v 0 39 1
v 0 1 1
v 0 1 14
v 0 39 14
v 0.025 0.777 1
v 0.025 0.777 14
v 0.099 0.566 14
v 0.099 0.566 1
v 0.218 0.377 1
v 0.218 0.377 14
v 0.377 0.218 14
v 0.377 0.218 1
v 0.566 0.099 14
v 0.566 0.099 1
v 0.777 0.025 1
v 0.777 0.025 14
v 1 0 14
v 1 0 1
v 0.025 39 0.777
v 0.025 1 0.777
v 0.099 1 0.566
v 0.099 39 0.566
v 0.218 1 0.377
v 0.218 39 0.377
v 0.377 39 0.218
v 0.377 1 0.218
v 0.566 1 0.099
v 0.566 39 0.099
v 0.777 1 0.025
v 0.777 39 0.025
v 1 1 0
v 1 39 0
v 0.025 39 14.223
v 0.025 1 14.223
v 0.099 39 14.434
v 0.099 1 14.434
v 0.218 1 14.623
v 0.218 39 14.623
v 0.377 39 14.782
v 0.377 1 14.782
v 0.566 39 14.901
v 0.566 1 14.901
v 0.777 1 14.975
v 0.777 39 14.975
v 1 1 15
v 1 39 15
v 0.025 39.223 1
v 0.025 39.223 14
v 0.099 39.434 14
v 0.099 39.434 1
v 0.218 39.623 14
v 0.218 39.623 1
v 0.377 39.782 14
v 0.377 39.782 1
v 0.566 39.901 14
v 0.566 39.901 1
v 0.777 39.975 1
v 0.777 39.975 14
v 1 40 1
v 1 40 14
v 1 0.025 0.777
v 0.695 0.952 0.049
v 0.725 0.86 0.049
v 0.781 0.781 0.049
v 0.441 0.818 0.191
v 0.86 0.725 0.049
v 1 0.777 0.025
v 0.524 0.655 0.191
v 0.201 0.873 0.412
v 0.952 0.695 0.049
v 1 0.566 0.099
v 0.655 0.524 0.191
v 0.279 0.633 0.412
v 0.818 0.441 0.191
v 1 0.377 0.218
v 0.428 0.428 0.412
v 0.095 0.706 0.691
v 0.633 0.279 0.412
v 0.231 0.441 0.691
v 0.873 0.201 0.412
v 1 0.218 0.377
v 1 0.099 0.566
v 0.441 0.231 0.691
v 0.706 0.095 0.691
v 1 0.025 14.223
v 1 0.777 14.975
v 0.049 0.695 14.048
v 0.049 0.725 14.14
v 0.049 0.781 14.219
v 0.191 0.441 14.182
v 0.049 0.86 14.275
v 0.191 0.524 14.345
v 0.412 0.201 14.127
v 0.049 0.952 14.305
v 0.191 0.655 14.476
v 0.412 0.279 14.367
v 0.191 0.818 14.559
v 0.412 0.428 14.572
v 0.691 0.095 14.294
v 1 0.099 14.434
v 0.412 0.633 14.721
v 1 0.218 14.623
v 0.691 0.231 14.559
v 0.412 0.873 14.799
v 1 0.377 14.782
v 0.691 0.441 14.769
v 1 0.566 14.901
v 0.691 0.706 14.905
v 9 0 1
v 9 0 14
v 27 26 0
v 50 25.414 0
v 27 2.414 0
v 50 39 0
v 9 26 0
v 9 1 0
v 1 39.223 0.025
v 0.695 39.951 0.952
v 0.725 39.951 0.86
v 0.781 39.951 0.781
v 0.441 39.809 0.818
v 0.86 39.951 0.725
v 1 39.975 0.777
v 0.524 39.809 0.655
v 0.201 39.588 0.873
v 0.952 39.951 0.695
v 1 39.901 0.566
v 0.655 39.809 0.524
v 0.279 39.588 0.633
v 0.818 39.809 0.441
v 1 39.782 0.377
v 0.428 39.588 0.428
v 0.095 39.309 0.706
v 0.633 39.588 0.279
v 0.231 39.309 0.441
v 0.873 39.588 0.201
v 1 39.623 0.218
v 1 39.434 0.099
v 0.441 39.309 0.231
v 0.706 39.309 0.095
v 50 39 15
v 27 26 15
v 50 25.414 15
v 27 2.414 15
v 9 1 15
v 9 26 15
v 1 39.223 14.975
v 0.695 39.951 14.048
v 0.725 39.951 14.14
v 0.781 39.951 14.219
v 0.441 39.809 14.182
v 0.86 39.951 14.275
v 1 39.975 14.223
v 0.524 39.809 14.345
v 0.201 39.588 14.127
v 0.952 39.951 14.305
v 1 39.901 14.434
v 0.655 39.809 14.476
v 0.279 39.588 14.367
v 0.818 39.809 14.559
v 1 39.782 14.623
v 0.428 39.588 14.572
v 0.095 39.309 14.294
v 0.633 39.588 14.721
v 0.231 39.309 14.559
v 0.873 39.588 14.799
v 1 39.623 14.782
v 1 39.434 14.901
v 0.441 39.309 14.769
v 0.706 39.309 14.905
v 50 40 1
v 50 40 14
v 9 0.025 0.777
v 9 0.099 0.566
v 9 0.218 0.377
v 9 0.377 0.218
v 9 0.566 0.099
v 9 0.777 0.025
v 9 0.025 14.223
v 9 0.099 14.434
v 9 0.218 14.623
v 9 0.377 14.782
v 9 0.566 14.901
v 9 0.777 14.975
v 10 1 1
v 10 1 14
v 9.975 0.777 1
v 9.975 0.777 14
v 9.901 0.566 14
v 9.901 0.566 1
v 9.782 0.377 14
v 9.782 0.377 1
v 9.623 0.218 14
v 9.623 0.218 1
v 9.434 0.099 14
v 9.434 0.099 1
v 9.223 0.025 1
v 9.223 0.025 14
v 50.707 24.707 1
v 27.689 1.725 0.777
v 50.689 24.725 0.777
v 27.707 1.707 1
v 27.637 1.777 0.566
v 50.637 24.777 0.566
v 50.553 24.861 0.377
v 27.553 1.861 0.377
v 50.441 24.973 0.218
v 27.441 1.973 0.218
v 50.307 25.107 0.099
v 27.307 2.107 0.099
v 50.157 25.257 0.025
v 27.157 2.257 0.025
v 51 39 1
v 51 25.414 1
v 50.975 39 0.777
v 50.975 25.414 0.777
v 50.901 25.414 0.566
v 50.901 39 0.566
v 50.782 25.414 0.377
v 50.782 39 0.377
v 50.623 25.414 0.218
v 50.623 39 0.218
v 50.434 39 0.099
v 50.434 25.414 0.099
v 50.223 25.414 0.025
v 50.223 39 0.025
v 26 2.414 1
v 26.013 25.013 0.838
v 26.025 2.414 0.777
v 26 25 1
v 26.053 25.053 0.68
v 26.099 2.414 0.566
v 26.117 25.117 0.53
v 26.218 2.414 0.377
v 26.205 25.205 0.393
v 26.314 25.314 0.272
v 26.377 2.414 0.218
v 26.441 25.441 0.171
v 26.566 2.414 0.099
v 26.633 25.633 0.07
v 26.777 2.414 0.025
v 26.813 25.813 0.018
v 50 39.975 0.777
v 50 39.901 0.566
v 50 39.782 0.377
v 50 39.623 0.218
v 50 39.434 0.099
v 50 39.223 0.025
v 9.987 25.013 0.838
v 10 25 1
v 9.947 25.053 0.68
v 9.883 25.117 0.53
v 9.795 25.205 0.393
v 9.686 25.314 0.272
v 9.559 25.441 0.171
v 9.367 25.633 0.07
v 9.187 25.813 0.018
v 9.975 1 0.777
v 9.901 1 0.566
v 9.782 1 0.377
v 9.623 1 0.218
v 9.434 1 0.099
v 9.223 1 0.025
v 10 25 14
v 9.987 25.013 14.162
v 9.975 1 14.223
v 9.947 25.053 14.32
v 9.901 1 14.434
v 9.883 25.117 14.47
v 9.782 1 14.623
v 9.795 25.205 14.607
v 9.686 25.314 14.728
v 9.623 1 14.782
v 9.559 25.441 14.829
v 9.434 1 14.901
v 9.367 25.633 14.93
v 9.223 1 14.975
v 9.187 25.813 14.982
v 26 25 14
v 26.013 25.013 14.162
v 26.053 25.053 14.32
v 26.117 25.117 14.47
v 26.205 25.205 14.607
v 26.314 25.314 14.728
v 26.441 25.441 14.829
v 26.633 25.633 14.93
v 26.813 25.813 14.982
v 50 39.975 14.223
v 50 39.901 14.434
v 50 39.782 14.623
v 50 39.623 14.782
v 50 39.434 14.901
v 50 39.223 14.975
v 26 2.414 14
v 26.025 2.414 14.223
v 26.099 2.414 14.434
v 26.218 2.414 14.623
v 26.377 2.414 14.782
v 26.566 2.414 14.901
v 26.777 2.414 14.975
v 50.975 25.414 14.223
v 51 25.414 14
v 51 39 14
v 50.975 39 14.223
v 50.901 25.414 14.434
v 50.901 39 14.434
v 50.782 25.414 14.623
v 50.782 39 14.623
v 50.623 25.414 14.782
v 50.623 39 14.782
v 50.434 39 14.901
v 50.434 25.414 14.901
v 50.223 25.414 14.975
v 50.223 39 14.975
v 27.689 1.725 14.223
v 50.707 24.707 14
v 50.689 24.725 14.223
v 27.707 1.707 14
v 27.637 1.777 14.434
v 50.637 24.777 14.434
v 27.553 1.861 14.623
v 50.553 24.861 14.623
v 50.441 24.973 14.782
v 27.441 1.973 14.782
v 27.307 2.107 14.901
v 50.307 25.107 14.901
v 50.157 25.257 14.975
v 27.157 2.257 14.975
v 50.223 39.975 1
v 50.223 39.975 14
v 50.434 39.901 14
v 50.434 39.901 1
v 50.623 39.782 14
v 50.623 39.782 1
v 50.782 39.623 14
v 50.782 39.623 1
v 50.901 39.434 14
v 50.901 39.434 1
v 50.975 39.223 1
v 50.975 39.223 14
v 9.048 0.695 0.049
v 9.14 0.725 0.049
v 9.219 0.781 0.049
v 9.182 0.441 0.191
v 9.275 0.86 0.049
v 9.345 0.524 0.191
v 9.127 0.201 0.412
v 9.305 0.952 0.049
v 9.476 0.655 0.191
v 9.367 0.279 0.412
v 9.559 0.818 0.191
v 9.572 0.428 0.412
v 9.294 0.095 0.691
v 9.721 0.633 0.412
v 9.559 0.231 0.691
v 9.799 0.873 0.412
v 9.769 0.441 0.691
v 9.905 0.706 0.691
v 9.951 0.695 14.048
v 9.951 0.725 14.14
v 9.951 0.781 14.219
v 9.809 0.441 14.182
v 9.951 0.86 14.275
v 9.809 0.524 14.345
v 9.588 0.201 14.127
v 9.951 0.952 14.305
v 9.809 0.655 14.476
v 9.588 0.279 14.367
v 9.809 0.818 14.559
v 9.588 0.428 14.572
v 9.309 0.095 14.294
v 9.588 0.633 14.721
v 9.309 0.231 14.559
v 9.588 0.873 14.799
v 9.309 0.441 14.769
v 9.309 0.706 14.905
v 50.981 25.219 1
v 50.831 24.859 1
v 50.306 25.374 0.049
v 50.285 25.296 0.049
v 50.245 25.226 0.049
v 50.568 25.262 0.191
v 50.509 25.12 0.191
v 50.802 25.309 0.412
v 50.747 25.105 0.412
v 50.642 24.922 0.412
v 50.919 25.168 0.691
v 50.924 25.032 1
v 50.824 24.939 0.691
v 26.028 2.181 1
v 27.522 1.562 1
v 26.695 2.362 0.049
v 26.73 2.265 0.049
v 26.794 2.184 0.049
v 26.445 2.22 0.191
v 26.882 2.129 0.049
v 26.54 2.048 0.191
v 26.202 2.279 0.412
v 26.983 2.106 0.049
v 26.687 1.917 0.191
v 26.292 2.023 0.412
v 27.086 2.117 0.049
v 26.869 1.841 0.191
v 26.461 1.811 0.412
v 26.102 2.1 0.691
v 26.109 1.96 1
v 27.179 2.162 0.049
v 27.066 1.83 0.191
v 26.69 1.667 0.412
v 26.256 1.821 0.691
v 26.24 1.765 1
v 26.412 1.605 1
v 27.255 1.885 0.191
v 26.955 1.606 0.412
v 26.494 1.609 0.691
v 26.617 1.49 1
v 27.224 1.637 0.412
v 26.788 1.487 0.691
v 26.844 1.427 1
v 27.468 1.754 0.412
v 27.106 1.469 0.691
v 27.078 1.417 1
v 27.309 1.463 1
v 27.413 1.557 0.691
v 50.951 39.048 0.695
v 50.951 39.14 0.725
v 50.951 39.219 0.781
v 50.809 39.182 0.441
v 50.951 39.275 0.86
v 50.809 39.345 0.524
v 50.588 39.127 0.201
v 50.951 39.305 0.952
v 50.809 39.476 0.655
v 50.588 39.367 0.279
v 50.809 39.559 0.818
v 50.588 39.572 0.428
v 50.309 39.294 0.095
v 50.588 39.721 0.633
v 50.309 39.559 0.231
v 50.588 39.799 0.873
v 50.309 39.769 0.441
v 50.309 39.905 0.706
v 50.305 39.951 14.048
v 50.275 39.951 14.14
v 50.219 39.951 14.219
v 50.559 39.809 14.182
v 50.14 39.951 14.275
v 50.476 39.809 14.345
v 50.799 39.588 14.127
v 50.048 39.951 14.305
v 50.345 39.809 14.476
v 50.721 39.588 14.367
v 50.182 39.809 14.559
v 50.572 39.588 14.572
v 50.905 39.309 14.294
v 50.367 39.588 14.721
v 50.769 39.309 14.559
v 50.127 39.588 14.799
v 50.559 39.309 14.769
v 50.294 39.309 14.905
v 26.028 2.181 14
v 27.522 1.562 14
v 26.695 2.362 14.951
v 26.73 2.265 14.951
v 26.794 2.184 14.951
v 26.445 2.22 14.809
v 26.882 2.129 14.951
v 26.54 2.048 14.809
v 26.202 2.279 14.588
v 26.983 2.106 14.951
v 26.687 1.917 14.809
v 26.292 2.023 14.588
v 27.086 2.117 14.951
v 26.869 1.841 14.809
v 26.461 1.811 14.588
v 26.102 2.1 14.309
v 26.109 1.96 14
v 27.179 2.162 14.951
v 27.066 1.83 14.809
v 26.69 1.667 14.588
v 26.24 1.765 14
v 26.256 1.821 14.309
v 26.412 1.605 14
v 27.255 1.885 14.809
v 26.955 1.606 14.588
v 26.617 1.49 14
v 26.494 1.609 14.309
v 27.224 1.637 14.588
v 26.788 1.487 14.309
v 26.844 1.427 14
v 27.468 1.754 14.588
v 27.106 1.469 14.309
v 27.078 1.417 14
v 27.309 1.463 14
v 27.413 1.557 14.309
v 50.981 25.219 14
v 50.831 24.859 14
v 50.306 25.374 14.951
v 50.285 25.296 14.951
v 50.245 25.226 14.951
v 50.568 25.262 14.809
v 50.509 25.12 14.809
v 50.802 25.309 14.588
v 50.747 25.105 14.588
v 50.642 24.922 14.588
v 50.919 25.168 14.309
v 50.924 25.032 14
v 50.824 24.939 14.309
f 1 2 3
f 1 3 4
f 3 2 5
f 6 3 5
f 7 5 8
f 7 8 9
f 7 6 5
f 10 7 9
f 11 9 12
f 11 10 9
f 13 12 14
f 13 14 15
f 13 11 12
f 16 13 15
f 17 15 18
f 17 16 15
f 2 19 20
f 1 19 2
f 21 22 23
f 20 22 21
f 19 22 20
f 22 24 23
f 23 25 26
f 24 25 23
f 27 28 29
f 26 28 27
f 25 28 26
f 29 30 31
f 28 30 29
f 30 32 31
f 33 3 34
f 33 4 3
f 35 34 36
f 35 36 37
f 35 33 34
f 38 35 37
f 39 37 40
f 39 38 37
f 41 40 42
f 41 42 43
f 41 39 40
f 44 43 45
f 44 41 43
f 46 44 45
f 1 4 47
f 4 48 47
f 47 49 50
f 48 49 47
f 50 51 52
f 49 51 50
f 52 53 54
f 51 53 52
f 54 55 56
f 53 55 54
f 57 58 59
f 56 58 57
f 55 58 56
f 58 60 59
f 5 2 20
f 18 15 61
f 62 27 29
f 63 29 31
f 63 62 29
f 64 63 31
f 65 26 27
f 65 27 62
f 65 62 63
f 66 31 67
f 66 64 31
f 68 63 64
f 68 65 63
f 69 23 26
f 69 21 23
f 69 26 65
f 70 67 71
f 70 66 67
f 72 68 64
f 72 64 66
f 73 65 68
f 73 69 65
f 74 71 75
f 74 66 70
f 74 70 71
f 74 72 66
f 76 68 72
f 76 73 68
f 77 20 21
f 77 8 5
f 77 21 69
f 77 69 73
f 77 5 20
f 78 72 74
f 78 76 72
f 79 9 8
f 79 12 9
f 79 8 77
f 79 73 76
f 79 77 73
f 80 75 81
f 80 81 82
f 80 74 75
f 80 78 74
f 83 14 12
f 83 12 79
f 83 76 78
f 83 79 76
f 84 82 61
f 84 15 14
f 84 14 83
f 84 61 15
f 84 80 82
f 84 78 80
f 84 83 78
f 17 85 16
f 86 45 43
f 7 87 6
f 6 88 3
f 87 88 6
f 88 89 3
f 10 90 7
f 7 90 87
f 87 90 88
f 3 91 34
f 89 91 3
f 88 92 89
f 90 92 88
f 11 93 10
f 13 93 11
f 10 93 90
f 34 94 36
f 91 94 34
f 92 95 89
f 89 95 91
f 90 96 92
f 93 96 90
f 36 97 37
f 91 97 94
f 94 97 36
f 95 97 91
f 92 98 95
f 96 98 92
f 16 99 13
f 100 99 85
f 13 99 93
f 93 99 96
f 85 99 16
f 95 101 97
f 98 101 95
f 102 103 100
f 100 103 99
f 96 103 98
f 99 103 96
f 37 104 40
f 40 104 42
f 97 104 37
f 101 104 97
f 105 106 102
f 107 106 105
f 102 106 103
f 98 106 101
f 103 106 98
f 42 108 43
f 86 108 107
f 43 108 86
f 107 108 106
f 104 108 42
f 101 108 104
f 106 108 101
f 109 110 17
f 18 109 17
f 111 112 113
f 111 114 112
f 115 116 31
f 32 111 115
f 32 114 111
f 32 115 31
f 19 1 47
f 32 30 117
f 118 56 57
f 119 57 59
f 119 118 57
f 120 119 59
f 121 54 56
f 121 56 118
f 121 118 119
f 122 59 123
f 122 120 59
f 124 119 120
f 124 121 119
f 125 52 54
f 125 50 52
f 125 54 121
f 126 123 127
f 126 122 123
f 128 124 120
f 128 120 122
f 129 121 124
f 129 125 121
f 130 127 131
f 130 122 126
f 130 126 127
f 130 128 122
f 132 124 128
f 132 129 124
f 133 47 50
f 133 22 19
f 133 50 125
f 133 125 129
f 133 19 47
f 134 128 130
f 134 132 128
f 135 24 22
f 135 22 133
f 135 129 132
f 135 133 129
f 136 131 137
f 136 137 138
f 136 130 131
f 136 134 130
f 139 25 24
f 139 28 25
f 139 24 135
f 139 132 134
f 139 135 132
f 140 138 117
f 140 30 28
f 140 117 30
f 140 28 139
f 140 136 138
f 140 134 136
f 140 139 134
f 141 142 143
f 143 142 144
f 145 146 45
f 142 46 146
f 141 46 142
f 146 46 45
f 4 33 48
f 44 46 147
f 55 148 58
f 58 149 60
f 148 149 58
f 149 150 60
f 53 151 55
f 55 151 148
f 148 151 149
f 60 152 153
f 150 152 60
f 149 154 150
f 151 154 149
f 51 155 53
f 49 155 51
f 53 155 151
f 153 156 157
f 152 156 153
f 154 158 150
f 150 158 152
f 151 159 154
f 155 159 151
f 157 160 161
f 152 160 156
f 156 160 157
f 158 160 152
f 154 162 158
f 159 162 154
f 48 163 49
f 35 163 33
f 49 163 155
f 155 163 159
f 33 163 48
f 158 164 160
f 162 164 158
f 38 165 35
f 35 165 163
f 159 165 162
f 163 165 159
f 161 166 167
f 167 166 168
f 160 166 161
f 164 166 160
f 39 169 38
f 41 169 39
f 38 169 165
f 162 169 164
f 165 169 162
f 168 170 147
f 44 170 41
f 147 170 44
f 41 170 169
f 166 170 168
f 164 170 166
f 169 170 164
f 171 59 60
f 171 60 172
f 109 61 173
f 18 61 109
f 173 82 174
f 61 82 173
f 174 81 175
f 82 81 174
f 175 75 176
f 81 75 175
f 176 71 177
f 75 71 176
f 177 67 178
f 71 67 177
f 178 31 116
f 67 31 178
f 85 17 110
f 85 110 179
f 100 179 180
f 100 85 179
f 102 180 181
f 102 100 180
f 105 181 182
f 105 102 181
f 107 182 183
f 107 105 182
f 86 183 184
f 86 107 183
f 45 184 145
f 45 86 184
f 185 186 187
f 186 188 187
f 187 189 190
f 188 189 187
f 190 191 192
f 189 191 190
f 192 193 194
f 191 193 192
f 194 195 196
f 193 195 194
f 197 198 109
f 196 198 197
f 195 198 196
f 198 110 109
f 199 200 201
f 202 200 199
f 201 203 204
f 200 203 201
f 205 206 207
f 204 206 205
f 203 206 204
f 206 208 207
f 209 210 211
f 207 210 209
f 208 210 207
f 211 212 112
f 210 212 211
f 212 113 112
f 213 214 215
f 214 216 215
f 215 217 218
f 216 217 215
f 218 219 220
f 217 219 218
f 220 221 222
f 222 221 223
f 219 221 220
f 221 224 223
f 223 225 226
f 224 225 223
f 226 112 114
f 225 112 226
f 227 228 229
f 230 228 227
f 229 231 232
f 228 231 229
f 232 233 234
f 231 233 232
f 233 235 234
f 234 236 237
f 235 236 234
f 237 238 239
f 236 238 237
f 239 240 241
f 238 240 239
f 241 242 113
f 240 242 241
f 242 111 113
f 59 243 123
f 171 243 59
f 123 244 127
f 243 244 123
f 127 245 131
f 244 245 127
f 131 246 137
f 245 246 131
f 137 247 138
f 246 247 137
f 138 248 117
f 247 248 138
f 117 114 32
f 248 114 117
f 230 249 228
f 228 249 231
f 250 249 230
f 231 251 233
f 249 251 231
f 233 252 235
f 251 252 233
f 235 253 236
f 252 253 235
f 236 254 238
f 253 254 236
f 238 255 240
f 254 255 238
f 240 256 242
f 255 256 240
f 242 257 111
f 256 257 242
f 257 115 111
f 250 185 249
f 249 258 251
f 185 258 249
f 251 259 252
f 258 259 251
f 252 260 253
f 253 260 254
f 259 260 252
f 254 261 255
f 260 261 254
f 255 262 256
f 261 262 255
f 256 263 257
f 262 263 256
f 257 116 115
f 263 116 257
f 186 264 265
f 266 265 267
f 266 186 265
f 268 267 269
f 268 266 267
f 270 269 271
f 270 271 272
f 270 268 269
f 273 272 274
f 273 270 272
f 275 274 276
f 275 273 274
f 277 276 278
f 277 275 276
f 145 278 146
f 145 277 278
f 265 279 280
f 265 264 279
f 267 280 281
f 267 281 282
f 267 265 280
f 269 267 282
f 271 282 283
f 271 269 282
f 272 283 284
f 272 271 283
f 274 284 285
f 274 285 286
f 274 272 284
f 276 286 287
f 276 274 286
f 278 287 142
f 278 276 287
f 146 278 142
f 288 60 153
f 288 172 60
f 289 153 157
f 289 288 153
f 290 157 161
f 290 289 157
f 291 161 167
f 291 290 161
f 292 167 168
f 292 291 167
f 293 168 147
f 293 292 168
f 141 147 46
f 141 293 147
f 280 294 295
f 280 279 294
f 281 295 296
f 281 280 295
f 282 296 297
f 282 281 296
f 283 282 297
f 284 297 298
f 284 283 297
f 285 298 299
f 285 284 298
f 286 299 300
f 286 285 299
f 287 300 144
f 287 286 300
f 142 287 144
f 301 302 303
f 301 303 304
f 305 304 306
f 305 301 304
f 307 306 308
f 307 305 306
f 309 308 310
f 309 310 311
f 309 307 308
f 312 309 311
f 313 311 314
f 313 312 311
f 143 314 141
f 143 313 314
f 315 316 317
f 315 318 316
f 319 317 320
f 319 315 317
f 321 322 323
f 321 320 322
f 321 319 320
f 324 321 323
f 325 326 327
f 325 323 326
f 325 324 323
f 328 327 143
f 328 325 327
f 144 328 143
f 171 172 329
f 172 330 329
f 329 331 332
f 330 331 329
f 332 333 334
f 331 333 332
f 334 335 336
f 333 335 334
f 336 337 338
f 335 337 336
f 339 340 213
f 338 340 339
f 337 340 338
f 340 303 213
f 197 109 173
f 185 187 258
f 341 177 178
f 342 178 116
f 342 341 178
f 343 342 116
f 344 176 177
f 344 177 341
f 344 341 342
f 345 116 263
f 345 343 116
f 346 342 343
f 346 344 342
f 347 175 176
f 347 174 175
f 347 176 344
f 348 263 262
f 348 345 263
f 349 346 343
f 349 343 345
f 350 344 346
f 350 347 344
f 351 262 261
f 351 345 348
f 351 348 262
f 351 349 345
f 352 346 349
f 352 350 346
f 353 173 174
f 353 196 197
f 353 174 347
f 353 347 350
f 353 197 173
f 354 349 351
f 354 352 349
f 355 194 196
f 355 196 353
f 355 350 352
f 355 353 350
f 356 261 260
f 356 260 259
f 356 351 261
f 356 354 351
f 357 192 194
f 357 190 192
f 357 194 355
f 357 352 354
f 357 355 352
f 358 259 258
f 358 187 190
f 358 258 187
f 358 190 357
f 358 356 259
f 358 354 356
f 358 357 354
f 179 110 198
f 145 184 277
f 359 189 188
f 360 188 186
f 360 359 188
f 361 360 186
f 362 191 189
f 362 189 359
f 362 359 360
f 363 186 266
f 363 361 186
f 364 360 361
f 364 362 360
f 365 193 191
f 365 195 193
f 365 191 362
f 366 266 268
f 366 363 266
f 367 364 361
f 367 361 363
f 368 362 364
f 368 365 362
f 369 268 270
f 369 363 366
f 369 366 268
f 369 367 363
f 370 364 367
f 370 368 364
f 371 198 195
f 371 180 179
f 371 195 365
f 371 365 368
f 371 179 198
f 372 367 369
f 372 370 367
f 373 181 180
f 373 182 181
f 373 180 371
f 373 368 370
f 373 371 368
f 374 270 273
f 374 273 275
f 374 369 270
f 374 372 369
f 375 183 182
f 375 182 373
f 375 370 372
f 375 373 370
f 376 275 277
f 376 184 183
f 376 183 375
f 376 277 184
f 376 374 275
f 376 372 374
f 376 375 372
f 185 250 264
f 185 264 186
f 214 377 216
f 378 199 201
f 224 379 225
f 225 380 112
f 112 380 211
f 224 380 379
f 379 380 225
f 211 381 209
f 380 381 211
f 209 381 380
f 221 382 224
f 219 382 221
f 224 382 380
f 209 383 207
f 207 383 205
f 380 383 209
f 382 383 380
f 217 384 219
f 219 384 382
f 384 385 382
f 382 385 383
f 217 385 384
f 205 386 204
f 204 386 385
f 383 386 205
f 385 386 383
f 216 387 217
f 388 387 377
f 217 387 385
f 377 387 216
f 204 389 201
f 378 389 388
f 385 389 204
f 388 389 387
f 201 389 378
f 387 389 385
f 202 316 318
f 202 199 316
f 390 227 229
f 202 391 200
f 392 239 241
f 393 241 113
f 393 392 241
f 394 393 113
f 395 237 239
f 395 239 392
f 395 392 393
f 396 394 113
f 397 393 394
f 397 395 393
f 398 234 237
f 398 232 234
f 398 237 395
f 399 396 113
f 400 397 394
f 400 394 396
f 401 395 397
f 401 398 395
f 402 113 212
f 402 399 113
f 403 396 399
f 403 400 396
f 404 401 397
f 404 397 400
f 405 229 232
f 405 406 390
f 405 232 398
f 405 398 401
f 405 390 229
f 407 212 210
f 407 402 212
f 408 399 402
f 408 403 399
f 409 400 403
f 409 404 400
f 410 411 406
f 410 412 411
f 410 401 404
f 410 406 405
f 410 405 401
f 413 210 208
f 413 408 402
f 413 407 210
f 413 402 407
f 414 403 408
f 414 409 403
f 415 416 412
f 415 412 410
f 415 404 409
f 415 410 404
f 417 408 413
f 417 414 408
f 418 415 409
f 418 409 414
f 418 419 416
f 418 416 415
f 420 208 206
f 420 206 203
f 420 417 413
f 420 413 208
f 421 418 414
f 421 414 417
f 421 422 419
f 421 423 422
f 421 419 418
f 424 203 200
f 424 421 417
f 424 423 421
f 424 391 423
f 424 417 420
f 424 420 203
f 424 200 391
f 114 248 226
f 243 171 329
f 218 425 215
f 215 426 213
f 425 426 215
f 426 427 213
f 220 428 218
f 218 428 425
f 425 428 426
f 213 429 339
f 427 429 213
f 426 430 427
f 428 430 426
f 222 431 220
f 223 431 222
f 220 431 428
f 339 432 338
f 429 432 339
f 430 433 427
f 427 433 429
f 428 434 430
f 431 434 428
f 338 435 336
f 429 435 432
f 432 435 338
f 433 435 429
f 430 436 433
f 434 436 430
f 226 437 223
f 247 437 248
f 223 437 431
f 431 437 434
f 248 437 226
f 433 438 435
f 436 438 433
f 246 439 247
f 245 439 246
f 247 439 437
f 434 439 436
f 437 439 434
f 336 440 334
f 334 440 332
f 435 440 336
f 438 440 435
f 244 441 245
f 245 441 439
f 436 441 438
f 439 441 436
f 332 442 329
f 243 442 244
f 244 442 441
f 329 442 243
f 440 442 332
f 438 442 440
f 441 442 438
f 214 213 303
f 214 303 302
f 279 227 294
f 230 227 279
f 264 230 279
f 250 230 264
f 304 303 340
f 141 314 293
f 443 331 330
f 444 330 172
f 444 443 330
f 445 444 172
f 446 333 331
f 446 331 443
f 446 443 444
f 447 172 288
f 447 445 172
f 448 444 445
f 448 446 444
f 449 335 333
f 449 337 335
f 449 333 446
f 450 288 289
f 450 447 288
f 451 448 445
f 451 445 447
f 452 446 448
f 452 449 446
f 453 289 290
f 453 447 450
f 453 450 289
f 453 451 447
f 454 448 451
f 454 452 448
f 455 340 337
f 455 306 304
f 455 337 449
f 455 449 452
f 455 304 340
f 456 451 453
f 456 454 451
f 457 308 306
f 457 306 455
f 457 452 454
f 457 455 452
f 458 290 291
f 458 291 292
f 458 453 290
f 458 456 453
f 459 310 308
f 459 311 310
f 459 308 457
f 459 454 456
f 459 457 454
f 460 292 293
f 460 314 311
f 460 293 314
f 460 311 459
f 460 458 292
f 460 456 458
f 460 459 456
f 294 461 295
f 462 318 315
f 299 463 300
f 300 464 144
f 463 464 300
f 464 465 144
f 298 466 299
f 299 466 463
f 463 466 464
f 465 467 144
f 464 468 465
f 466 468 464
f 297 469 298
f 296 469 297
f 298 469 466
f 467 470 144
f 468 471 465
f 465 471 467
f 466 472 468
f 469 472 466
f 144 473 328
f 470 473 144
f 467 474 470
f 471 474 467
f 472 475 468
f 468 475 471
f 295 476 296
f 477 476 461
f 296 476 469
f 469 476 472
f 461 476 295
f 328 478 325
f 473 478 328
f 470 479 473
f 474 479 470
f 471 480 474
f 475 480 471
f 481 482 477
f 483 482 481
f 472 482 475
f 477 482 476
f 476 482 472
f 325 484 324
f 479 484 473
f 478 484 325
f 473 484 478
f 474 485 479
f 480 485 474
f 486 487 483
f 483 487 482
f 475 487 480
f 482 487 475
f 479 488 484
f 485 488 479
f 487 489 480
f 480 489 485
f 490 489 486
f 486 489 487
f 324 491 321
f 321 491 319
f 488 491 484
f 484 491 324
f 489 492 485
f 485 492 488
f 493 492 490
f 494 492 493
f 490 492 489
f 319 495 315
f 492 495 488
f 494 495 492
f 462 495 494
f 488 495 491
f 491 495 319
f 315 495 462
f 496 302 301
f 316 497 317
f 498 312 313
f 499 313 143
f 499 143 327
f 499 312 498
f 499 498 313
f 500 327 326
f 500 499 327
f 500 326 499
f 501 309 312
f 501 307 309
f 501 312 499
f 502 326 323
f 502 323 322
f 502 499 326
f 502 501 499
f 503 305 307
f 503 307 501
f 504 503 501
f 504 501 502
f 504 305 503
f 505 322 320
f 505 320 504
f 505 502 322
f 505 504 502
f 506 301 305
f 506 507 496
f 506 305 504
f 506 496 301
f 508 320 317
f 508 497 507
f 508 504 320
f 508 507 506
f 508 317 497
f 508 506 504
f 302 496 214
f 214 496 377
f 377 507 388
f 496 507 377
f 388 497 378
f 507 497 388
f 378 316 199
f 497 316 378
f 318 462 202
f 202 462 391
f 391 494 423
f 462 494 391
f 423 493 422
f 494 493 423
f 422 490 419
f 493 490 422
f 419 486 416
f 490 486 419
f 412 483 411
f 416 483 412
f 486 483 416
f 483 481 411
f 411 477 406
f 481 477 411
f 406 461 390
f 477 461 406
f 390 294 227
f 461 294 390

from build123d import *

# Parameters (mm, degrees)
PAD_DEPTH = 15
FILLET_R  = 1


with BuildPart() as part:
    # Sketch → Pad (new body)
    with BuildSketch(Plane.XY):
        Polygon((0, 0), (0, 40), (51, 40), (51, 25), (26, 0), (26, 25), (10, 25), (10, 0), align=None)
    extrude(amount=PAD_DEPTH)

    # Fillet
    fillet_edges = [part.edges().sort_by_distance(p)[0] for p in [
        (5, 0, 15),
        (0, 0, 7.5),
        (10, 0, 7.5),
        (10, 12.5, 15),
        (18, 25, 15),
        (26, 12.5, 15),
        (38.5, 12.5, 15),
        (38.5, 12.5, 0),
        (26, 0, 7.5),
        (51, 25, 7.5),
        (0, 20, 15),
        (0, 20, 0),
        (0, 40, 7.5),
        (51, 32.5, 15),
        (18, 25, 0),
        (5, 0, 0),
        (10, 12.5, 0),
        (26, 12.5, 0),
        (25.5, 40, 0),
        (51, 32.5, 0),
        (51, 40, 7.5),
        (25.5, 40, 15),
    ]]
    fillet(fillet_edges, radius=FILLET_R)


solid = part.part
